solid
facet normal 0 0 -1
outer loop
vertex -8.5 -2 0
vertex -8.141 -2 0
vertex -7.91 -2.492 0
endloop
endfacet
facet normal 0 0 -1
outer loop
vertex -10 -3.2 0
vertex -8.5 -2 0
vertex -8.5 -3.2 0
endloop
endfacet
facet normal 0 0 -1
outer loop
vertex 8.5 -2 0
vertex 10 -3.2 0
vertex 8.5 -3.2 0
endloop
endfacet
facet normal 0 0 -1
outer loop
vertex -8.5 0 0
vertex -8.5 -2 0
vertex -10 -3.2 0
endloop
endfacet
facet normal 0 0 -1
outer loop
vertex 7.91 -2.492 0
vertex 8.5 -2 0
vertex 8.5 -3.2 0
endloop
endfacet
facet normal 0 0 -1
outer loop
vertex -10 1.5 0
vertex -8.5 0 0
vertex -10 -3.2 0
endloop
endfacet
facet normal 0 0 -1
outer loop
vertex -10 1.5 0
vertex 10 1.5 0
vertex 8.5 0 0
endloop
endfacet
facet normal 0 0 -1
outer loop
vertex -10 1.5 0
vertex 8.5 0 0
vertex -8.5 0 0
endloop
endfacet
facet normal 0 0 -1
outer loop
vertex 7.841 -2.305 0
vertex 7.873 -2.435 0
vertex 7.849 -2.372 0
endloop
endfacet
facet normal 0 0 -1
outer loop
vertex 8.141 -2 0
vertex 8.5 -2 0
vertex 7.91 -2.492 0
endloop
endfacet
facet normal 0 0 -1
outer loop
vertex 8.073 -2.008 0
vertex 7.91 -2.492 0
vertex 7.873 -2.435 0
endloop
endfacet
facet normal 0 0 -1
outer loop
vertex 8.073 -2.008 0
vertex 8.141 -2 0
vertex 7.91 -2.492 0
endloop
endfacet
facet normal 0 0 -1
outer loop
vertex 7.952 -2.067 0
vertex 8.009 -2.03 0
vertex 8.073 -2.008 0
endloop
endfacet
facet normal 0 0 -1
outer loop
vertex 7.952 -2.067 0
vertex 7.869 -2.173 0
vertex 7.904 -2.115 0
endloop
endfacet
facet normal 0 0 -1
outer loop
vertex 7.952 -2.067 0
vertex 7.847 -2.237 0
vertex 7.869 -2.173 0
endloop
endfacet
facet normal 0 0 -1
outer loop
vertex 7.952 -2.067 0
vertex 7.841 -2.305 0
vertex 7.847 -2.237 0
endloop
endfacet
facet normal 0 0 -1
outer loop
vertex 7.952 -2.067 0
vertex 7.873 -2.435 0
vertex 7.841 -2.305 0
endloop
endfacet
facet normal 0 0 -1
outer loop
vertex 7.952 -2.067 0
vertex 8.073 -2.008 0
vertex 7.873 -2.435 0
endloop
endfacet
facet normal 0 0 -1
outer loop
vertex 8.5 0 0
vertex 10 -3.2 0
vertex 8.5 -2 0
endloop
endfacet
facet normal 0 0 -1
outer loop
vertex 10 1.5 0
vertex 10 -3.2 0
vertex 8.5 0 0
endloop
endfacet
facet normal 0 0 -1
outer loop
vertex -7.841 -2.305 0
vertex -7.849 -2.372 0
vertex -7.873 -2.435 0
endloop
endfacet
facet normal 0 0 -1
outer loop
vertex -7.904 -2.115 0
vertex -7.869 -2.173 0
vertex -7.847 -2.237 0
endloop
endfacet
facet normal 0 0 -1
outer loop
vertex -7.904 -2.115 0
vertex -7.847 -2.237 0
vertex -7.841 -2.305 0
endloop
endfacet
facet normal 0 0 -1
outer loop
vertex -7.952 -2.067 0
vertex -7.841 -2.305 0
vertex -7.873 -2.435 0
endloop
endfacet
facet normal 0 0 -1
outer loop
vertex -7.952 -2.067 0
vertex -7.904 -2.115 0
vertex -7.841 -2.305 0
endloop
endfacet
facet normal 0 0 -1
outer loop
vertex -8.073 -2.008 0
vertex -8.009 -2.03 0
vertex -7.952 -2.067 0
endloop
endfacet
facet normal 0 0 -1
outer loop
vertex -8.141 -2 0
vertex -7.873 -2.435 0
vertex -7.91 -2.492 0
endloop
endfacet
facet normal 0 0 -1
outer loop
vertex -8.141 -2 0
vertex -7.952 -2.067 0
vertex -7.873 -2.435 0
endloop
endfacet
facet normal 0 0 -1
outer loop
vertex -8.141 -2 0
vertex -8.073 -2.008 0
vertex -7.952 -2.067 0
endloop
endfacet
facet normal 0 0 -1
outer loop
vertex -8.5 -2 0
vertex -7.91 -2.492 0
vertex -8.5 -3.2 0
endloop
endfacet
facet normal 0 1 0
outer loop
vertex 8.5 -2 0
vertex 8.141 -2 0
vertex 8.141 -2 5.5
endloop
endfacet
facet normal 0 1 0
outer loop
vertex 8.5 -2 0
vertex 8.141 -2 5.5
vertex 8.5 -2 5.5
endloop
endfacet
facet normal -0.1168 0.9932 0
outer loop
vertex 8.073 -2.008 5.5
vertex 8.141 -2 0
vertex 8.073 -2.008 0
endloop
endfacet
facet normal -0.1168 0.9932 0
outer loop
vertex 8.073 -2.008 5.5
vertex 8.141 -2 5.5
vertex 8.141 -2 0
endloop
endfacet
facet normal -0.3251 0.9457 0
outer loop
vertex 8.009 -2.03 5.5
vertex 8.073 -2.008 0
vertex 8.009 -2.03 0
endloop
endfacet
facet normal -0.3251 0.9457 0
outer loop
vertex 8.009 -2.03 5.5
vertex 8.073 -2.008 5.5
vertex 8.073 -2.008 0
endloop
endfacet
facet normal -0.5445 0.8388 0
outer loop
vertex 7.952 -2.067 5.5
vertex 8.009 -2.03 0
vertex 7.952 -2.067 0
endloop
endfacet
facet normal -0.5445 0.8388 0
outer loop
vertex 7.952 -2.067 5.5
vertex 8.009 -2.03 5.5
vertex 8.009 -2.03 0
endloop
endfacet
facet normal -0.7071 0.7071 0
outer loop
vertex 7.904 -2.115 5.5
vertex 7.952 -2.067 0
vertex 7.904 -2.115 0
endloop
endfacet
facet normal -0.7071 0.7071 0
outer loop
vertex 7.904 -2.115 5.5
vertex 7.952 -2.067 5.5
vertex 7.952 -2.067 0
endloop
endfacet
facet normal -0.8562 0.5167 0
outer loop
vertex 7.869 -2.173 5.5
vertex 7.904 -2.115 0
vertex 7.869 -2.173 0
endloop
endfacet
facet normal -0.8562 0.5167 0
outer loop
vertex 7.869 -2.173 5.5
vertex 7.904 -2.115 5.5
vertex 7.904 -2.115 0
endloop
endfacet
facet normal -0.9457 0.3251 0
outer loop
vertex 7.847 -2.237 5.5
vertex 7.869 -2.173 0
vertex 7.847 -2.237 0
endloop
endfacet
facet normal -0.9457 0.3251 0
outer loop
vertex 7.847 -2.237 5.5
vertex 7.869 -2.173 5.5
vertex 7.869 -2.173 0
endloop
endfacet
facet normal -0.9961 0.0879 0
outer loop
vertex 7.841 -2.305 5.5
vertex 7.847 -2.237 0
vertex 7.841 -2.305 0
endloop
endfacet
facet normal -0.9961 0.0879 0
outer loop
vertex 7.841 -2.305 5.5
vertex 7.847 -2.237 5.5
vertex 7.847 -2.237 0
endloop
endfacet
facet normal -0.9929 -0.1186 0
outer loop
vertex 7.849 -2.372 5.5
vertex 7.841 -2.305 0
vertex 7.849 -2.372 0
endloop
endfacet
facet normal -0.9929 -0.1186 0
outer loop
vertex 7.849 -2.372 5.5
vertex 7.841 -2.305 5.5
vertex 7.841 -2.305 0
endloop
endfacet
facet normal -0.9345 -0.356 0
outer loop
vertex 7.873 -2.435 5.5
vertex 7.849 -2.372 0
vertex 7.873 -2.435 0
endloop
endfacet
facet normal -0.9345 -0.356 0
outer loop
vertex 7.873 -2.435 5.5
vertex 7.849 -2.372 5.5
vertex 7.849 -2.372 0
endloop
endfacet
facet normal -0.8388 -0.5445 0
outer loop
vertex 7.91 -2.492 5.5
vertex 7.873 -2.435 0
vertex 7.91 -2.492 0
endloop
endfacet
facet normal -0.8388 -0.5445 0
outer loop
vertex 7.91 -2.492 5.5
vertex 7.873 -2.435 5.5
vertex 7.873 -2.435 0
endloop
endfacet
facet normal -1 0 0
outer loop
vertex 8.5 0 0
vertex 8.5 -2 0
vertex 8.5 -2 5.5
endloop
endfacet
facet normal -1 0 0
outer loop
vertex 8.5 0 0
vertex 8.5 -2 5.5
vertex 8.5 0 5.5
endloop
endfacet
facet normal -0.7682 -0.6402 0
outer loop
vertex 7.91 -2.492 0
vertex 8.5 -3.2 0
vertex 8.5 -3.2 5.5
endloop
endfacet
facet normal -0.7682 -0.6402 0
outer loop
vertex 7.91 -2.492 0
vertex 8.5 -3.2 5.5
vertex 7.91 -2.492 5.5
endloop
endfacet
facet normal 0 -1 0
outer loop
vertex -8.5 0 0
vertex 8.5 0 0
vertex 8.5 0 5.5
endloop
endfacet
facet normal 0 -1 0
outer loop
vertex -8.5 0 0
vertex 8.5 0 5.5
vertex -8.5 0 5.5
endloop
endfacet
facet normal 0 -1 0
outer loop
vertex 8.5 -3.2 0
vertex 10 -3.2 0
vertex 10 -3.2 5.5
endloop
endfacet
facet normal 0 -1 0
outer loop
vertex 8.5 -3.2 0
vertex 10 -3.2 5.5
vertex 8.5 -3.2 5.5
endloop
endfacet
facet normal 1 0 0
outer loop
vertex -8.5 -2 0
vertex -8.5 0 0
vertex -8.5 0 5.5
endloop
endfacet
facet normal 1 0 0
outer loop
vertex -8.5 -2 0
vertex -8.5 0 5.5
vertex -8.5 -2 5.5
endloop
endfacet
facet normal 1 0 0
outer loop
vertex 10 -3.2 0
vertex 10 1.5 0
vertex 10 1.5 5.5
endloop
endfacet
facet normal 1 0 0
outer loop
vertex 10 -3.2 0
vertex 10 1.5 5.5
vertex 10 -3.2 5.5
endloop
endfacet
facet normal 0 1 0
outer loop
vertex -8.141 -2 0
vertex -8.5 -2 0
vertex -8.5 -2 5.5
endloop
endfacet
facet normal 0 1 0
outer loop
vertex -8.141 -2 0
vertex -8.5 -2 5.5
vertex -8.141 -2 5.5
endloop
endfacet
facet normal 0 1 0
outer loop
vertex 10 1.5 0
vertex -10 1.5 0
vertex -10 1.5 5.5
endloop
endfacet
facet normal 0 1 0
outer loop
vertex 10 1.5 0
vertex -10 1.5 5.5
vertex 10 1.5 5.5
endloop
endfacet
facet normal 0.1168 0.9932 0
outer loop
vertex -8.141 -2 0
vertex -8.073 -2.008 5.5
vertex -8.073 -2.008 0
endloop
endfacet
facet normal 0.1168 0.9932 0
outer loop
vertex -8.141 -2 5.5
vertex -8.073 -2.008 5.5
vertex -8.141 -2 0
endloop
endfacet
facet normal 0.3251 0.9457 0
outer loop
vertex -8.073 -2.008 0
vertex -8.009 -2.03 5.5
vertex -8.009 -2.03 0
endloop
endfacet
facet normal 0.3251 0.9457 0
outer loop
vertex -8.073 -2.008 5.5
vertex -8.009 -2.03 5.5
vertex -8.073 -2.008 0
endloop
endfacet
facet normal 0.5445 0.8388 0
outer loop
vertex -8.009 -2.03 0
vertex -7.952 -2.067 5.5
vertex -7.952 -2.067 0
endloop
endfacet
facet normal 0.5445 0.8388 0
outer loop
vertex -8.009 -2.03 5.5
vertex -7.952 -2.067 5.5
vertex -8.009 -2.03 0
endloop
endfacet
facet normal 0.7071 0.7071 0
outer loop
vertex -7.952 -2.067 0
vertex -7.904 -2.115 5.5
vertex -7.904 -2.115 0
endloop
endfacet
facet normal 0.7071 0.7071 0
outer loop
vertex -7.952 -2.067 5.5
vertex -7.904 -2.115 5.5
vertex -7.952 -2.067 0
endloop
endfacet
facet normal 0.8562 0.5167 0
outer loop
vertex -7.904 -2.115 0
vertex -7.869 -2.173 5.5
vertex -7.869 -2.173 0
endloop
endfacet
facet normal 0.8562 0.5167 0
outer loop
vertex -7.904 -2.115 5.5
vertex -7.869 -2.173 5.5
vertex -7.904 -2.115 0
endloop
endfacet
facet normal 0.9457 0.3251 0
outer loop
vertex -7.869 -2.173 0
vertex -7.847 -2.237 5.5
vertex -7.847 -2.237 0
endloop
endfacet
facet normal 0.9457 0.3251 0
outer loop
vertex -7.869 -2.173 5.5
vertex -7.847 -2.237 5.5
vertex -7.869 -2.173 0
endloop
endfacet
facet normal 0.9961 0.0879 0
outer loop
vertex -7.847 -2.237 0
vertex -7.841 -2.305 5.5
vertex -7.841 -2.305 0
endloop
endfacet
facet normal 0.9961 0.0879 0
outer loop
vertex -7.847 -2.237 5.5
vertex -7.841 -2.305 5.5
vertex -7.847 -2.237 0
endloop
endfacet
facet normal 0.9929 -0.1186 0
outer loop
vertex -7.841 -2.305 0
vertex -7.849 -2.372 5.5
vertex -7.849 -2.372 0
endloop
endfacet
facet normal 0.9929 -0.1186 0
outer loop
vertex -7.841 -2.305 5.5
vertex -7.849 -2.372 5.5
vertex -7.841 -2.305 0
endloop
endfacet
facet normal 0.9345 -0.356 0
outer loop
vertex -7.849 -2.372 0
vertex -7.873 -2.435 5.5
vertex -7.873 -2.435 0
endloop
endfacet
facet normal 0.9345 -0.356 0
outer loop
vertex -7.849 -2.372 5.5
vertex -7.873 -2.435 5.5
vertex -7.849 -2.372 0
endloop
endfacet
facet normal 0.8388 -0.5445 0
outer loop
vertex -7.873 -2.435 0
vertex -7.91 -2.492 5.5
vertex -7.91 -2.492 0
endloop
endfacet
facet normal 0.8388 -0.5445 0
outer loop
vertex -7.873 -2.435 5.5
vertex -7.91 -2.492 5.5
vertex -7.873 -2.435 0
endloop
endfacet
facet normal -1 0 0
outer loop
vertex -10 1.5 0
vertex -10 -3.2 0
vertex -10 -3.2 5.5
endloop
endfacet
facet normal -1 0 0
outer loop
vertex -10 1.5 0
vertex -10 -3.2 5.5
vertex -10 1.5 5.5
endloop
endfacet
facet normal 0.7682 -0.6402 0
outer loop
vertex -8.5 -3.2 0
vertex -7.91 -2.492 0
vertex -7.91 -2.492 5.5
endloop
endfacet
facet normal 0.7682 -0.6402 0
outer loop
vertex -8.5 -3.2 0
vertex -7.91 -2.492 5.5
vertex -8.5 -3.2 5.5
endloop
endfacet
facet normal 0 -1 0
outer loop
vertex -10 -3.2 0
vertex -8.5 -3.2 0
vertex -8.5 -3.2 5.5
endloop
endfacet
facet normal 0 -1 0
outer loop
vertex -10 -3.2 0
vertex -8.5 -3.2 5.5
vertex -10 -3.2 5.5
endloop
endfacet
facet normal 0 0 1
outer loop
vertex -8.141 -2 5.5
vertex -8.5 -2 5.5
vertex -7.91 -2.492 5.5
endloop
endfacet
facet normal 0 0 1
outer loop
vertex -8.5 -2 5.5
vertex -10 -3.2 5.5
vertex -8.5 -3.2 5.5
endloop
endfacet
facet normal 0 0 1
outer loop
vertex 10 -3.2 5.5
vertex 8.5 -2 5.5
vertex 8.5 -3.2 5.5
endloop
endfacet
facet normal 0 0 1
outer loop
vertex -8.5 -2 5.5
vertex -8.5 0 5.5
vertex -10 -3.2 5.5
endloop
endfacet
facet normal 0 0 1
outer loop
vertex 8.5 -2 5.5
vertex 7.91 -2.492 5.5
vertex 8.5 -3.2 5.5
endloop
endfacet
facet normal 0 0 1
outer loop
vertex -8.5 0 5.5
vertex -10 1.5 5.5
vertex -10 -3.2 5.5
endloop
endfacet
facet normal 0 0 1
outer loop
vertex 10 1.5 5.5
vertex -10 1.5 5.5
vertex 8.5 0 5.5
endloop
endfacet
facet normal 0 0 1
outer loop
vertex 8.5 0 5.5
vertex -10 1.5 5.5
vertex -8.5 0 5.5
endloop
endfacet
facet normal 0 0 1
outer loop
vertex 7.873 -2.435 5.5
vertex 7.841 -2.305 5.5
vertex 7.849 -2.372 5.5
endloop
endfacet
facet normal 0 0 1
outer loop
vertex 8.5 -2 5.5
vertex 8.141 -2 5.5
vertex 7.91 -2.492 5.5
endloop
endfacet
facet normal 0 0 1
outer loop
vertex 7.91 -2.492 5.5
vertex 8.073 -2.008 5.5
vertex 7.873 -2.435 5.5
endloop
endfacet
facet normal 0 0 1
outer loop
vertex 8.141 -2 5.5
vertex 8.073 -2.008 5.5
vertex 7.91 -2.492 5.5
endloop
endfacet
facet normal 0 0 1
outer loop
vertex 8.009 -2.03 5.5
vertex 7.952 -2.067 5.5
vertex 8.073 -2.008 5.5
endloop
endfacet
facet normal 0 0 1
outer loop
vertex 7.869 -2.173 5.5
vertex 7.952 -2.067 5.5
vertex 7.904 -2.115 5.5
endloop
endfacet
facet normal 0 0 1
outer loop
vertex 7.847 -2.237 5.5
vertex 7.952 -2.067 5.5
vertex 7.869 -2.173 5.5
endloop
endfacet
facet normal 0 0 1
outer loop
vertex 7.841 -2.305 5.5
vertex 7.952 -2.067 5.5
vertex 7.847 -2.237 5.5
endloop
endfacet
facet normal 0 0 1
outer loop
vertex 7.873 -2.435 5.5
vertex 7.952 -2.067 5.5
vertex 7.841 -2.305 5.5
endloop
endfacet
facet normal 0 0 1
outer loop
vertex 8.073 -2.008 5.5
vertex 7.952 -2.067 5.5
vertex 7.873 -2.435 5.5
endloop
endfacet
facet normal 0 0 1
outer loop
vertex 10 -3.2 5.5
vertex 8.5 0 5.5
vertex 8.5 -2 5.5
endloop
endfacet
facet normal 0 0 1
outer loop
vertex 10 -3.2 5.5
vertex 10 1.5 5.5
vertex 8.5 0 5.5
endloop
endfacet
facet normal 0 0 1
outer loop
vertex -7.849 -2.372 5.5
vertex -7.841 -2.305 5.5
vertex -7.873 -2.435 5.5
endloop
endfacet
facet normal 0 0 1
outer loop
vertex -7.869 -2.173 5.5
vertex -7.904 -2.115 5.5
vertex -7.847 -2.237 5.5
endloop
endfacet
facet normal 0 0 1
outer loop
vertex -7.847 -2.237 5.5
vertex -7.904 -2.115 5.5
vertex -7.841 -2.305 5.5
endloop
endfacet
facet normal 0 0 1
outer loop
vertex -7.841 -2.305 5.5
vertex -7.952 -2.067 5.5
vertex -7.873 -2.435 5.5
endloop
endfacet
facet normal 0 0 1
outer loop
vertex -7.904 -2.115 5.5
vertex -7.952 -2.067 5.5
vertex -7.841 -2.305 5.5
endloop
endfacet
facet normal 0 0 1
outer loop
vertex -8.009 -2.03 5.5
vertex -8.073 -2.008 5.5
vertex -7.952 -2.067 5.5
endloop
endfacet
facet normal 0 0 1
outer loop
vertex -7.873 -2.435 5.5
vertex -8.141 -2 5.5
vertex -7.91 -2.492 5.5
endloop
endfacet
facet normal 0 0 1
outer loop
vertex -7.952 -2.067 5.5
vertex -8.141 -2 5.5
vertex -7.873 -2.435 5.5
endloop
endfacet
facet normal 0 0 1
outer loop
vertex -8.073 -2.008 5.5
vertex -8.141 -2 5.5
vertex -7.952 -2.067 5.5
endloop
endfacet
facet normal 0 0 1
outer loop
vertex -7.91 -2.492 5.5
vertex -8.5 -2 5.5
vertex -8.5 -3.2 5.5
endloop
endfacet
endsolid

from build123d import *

# Parameters (mm, degrees)
PAD_DEPTH   = 5.5
FILLET_R    = 0.3
FILLET001_R = 0.3


with BuildPart() as part:
    # Sketch → Pad (new body)
    with BuildSketch(Plane.XY):
        Polygon((-10, 1.5), (10, 1.5), (10, -3.2), (8.5, -3.2), (7.5, -2), (8.5, -2), (8.5, 0), (-8.5, 0), (-8.5, -2), (-7.5, -2), (-8.5, -3.2), (-10, -3.2), align=None)
    extrude(amount=PAD_DEPTH)

    # Fillet
    fillet_edges = [part.edges().sort_by_distance(p)[0] for p in [
        (-7.5, -2, 2.75),
    ]]
    fillet(fillet_edges, radius=FILLET_R)

    # Fillet001
    fillet001_edges = [part.edges().sort_by_distance(p)[0] for p in [
        (7.5, -2, 2.75),
    ]]
    fillet(fillet001_edges, radius=FILLET001_R)


solid = part.part
